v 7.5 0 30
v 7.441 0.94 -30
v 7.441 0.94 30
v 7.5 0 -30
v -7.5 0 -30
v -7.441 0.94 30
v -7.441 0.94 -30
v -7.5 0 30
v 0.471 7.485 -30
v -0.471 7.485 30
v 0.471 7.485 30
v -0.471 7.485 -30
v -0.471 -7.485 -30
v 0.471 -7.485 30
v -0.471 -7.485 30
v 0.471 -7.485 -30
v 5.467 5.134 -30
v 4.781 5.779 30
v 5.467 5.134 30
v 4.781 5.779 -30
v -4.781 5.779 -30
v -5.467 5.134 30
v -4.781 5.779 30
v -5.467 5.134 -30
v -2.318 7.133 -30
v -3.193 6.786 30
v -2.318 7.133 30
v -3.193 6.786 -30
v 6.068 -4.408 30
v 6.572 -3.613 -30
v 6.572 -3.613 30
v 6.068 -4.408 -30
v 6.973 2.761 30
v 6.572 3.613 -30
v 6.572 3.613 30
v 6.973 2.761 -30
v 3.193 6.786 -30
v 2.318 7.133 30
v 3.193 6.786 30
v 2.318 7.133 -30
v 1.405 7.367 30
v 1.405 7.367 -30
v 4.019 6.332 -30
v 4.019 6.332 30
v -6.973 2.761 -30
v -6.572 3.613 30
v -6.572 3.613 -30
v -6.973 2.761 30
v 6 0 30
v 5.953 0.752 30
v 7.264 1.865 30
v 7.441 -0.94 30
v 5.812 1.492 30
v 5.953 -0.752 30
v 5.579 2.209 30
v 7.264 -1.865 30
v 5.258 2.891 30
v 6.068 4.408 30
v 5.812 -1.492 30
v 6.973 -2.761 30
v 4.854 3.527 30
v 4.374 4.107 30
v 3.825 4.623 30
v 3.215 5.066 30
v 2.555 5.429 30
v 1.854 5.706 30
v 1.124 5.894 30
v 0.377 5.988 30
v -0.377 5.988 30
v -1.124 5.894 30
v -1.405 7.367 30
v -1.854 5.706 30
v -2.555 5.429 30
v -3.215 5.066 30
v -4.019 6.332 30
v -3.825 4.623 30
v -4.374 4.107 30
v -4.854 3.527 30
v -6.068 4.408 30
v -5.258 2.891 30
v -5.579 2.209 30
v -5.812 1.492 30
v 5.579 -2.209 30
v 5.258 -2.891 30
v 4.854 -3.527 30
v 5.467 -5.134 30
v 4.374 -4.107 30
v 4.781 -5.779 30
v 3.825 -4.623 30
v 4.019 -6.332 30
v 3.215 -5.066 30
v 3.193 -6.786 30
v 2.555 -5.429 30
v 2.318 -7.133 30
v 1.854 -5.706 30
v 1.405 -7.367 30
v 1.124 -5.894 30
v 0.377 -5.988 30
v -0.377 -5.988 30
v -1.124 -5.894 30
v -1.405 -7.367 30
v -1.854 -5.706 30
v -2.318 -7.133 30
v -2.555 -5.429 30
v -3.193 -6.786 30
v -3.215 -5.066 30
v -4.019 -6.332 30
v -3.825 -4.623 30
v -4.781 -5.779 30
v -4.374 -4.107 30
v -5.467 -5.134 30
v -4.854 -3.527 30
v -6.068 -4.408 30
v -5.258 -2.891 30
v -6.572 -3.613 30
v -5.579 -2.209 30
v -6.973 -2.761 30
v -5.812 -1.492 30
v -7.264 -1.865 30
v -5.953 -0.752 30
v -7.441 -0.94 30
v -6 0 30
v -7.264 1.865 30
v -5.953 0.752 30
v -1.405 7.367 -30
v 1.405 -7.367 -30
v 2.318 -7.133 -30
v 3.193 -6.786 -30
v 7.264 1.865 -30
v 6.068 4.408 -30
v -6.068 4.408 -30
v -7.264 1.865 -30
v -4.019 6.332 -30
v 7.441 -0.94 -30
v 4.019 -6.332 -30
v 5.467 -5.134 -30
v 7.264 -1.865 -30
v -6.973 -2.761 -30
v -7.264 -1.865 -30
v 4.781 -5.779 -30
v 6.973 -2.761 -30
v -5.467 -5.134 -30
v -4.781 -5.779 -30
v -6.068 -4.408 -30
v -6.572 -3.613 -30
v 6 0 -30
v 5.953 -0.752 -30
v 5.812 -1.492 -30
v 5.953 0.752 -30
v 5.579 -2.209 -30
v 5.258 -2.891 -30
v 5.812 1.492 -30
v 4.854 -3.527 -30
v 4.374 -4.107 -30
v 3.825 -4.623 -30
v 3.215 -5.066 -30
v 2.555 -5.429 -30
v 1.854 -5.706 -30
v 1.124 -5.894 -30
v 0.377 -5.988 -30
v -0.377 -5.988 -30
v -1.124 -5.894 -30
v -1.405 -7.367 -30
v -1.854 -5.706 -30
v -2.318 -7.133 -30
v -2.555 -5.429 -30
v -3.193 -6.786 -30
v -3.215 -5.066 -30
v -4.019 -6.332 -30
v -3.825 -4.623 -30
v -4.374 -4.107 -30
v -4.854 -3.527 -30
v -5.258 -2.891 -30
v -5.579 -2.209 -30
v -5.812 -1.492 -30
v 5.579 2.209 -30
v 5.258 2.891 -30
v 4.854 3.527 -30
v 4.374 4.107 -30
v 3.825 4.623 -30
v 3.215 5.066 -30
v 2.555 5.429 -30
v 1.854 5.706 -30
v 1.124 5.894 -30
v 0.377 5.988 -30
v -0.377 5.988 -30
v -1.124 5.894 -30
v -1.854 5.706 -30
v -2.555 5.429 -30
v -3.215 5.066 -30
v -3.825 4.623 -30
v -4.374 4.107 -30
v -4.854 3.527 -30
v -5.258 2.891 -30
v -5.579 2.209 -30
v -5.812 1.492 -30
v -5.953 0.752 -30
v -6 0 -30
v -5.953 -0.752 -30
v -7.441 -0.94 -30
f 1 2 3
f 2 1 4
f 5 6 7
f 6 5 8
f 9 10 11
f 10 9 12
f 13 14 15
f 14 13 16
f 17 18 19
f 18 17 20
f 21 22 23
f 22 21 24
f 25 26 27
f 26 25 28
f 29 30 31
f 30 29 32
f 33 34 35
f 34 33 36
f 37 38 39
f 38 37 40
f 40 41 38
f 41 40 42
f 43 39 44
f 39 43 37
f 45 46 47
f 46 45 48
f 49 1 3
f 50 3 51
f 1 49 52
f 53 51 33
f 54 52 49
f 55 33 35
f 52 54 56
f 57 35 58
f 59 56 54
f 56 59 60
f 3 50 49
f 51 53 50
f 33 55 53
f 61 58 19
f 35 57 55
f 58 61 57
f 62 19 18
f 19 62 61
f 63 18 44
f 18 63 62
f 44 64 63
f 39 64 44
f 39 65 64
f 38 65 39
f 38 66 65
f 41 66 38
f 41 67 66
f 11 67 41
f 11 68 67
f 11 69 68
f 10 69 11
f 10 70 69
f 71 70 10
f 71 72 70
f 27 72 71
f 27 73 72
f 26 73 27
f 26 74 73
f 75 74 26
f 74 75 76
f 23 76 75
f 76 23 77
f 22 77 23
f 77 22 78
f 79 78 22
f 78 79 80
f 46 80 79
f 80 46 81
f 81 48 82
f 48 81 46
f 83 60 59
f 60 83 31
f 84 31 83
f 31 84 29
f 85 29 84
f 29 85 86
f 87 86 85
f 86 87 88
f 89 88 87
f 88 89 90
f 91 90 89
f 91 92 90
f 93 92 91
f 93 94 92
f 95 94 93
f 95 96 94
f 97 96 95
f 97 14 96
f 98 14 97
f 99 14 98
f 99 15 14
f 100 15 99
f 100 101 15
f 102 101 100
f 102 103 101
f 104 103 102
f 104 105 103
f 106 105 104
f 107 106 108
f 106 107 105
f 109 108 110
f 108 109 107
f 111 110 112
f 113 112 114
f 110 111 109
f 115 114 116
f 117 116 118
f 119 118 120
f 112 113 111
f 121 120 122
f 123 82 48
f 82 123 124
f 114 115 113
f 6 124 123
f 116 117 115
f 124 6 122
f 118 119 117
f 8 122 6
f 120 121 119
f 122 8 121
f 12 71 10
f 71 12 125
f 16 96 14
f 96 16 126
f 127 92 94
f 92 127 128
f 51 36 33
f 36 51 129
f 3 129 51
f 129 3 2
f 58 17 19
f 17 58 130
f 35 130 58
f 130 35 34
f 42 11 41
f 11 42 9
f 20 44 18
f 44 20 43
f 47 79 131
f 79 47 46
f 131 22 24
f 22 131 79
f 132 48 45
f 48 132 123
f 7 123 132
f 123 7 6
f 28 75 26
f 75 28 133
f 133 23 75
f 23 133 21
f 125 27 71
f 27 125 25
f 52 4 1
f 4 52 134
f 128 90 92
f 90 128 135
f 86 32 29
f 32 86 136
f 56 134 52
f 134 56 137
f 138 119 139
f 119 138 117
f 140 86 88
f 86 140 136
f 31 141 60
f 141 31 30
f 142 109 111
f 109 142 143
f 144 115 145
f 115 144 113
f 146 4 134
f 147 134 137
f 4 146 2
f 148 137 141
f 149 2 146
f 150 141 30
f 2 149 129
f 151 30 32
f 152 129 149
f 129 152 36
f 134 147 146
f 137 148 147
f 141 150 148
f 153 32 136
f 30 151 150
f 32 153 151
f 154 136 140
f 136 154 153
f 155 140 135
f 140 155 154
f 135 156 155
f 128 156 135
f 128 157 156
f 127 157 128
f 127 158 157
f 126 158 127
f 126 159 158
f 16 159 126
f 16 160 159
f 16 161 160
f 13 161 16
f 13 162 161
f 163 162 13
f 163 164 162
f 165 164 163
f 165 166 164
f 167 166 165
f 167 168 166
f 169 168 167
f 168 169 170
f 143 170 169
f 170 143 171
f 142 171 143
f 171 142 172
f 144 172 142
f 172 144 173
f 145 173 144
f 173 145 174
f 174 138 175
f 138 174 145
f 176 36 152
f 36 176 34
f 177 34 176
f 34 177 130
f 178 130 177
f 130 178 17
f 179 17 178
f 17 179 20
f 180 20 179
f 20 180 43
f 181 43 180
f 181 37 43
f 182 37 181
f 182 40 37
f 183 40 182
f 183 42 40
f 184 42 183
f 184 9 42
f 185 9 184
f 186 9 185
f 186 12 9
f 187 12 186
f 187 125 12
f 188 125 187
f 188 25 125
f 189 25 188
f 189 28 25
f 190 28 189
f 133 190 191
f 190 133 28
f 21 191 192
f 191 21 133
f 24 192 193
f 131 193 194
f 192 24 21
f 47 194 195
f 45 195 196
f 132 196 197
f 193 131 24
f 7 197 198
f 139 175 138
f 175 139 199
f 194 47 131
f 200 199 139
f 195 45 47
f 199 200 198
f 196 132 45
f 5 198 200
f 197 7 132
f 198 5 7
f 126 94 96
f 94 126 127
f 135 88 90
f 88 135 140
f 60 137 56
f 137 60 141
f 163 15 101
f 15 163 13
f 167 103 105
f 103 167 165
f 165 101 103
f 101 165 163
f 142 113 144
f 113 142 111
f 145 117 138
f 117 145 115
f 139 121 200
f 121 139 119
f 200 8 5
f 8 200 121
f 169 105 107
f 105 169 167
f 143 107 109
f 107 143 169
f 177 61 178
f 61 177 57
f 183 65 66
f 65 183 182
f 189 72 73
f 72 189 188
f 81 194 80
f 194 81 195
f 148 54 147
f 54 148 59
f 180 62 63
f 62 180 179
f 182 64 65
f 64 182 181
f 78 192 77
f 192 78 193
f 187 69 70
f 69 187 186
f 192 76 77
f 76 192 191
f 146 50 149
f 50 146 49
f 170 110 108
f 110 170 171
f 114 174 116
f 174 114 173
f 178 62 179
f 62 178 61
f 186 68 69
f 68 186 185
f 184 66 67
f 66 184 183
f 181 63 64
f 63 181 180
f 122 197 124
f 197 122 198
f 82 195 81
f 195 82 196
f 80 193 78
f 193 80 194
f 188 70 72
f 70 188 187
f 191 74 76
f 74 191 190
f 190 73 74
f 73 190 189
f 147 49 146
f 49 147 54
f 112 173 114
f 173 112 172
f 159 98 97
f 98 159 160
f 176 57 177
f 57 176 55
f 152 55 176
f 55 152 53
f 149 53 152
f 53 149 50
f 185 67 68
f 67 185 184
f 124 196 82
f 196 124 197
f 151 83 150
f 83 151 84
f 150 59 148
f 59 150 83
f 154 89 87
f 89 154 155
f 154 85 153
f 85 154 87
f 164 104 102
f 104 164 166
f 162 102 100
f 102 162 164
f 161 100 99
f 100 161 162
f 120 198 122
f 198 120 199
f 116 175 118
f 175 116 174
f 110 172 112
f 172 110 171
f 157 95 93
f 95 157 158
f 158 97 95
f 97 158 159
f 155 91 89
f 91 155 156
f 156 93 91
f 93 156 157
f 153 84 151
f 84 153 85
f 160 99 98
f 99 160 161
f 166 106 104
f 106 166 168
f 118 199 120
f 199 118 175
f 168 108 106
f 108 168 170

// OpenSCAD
$fn = 50;


difference() {
	union() {
		translate(v = [0, 0, -30.0000000000]) {
			cylinder(h = 60, r = 7.5000000000);
		}
	}
	union() {
		translate(v = [0, 0, -100.0000000000]) {
			cylinder(h = 200, r = 6);
		}
	}
}
